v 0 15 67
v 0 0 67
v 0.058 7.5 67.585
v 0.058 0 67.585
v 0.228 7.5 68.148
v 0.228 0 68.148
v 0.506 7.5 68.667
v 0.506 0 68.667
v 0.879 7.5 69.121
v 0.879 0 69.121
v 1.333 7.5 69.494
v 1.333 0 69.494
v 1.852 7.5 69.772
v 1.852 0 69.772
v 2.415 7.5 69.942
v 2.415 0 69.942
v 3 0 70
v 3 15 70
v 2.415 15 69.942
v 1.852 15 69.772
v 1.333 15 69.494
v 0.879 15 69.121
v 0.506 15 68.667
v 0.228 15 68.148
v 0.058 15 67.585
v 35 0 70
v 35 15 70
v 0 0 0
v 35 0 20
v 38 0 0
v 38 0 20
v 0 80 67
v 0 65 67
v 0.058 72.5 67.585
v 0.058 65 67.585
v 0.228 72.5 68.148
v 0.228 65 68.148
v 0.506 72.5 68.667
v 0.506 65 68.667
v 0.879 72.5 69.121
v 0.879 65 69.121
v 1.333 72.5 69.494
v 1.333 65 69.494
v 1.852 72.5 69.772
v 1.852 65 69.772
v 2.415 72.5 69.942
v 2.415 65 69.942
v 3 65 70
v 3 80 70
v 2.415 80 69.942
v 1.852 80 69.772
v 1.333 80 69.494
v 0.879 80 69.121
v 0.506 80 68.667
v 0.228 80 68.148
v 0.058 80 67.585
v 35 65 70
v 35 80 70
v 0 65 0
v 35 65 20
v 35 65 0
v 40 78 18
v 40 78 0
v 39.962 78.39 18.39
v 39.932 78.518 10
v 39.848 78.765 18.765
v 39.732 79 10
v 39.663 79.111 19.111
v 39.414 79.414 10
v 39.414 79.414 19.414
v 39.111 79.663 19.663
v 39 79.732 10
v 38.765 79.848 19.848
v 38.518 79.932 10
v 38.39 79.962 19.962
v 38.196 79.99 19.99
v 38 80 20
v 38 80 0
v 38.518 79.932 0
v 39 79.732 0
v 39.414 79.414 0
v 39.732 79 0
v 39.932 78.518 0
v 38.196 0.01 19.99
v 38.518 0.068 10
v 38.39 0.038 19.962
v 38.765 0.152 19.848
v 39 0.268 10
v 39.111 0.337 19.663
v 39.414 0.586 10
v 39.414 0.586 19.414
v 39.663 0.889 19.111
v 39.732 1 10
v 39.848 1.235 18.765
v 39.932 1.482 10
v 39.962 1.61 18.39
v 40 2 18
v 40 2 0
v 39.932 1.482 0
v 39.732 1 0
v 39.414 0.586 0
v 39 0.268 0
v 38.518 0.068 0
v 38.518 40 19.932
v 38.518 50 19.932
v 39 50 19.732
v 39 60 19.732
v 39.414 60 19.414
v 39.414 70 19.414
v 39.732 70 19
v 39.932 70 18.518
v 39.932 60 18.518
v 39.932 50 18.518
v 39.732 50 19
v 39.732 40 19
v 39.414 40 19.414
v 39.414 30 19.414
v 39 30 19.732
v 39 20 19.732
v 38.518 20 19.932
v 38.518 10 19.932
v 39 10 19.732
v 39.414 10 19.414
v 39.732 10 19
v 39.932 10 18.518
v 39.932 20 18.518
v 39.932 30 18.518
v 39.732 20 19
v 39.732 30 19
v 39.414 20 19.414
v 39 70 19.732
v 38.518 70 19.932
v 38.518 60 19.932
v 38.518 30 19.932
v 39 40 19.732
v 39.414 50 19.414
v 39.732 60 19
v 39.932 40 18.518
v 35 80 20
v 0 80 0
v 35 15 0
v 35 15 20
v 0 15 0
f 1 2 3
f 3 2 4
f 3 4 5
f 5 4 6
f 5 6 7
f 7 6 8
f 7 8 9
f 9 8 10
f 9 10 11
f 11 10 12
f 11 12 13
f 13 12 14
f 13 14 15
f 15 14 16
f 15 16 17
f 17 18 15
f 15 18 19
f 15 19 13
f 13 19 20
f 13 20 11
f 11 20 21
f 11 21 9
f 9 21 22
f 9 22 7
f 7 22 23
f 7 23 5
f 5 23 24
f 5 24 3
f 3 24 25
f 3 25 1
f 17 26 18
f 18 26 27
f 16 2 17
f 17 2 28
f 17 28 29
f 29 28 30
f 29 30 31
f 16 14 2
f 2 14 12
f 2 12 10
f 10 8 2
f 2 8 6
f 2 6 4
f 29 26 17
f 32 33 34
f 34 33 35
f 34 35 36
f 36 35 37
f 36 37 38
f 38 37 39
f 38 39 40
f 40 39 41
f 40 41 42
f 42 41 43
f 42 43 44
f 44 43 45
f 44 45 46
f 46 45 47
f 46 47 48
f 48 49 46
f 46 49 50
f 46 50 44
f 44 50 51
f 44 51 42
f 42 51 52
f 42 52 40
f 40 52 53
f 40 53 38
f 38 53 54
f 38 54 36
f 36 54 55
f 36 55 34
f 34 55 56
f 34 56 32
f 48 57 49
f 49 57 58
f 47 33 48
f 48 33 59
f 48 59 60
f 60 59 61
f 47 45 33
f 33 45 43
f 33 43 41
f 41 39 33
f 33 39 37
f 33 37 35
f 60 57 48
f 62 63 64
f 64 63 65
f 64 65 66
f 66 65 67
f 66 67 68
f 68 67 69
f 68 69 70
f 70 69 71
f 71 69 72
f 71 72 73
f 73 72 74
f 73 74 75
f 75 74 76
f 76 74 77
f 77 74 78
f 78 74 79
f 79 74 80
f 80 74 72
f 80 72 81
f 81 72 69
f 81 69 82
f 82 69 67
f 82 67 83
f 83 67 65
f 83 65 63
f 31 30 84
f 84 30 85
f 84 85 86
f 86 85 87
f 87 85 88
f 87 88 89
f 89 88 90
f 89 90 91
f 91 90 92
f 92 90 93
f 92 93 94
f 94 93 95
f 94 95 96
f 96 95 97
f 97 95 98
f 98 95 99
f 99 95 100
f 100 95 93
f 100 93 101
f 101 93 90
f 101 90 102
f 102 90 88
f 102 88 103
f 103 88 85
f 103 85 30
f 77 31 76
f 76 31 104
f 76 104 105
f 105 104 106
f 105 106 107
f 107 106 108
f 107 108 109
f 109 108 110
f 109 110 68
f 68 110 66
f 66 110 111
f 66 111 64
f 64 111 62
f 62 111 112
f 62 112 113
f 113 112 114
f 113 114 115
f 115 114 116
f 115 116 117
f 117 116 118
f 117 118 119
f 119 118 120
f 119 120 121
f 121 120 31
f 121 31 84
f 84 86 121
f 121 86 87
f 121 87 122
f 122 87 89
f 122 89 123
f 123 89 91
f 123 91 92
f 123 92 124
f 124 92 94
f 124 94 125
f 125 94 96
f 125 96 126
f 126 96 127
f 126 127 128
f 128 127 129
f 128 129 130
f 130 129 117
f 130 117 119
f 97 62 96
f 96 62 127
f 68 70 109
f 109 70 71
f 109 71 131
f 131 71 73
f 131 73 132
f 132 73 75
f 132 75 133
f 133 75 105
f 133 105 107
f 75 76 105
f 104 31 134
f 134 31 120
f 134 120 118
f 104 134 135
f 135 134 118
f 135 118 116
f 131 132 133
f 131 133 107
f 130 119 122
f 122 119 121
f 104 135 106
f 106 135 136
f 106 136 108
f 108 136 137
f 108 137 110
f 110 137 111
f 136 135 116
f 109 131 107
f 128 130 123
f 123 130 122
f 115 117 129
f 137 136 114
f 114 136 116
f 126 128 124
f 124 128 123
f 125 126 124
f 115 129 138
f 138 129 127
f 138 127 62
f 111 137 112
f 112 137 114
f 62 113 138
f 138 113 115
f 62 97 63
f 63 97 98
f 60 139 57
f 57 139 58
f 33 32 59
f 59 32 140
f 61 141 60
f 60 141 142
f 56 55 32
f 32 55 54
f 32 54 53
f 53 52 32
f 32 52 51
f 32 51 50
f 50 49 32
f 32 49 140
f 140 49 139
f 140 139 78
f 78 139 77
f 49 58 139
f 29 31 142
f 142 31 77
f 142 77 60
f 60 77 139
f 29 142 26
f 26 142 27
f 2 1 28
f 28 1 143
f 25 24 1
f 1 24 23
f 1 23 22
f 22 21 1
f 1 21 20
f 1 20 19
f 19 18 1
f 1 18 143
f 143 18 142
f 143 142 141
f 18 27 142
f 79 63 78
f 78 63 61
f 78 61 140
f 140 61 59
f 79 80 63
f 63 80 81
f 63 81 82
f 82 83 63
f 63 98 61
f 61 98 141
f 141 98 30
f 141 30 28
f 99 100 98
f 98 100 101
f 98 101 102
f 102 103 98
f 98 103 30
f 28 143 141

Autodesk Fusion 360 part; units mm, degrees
sketch "Sketch1" plane through (0, 0, 0) normal (0, 0, 1) x (1, 0, 0) in component "Spacer"
  line L0 (0, 0) -> (35, 0)
  line L1 (35, 0) -> (35, 15)
  line L2 (35, 15) -> (0, 15)
  line L3 (0, 15) -> (0, 0)
  line L4 (0, 65) -> (35, 65)
  line L5 (35, 65) -> (35, 80)
  line L6 (35, 80) -> (0, 80)
  line L7 (0, 80) -> (0, 65)
  line L8 (35, 0) -> (40, 0)
  line L9 (40, 0) -> (40, 80)
  line L10 (40, 80) -> (35, 80)
  line L11 (35, 80) -> (35, 0)
  dimension "d1" = 35
  dimension "d2" = 15
  dimension "d3" = 35
  dimension "d4" = 15
  dimension "d5" = 50
  dimension "d6" = 35
  dimension "d7" = 5
  dimension "d8" = 80
extrude "Extrude1" add sketch "Sketch1" along normal blind 70 contours L0 L1 L2 L3 L11 | L4 L5 L6 L7 L11 makes body 1 at (23.3333, 15, 46.6667) makes body 2 at (11.6667, 65, 46.6667) in component "Spacer"
extrude "Extrude2" add sketch "Sketch1" along normal blind 20 contours L1 L5 L8 L9 L10 L11 bodies 1 2 in component "Spacer"
fillet "Fillet1" radius 2 3 edges at (40, 40, 20) (40, 0, 10) (40, 80, 10) on bodies 1 in component "Spacer"
fillet "Fillet2" radius 3 2 edges at (0, 72.5, 70) (0, 7.5, 70) on bodies 1 in component "Spacer"
component "Spacer" placed x (1, 0, 0) y (0, 1, 0) z (0, 0, 1) at (0, 0, 0)
